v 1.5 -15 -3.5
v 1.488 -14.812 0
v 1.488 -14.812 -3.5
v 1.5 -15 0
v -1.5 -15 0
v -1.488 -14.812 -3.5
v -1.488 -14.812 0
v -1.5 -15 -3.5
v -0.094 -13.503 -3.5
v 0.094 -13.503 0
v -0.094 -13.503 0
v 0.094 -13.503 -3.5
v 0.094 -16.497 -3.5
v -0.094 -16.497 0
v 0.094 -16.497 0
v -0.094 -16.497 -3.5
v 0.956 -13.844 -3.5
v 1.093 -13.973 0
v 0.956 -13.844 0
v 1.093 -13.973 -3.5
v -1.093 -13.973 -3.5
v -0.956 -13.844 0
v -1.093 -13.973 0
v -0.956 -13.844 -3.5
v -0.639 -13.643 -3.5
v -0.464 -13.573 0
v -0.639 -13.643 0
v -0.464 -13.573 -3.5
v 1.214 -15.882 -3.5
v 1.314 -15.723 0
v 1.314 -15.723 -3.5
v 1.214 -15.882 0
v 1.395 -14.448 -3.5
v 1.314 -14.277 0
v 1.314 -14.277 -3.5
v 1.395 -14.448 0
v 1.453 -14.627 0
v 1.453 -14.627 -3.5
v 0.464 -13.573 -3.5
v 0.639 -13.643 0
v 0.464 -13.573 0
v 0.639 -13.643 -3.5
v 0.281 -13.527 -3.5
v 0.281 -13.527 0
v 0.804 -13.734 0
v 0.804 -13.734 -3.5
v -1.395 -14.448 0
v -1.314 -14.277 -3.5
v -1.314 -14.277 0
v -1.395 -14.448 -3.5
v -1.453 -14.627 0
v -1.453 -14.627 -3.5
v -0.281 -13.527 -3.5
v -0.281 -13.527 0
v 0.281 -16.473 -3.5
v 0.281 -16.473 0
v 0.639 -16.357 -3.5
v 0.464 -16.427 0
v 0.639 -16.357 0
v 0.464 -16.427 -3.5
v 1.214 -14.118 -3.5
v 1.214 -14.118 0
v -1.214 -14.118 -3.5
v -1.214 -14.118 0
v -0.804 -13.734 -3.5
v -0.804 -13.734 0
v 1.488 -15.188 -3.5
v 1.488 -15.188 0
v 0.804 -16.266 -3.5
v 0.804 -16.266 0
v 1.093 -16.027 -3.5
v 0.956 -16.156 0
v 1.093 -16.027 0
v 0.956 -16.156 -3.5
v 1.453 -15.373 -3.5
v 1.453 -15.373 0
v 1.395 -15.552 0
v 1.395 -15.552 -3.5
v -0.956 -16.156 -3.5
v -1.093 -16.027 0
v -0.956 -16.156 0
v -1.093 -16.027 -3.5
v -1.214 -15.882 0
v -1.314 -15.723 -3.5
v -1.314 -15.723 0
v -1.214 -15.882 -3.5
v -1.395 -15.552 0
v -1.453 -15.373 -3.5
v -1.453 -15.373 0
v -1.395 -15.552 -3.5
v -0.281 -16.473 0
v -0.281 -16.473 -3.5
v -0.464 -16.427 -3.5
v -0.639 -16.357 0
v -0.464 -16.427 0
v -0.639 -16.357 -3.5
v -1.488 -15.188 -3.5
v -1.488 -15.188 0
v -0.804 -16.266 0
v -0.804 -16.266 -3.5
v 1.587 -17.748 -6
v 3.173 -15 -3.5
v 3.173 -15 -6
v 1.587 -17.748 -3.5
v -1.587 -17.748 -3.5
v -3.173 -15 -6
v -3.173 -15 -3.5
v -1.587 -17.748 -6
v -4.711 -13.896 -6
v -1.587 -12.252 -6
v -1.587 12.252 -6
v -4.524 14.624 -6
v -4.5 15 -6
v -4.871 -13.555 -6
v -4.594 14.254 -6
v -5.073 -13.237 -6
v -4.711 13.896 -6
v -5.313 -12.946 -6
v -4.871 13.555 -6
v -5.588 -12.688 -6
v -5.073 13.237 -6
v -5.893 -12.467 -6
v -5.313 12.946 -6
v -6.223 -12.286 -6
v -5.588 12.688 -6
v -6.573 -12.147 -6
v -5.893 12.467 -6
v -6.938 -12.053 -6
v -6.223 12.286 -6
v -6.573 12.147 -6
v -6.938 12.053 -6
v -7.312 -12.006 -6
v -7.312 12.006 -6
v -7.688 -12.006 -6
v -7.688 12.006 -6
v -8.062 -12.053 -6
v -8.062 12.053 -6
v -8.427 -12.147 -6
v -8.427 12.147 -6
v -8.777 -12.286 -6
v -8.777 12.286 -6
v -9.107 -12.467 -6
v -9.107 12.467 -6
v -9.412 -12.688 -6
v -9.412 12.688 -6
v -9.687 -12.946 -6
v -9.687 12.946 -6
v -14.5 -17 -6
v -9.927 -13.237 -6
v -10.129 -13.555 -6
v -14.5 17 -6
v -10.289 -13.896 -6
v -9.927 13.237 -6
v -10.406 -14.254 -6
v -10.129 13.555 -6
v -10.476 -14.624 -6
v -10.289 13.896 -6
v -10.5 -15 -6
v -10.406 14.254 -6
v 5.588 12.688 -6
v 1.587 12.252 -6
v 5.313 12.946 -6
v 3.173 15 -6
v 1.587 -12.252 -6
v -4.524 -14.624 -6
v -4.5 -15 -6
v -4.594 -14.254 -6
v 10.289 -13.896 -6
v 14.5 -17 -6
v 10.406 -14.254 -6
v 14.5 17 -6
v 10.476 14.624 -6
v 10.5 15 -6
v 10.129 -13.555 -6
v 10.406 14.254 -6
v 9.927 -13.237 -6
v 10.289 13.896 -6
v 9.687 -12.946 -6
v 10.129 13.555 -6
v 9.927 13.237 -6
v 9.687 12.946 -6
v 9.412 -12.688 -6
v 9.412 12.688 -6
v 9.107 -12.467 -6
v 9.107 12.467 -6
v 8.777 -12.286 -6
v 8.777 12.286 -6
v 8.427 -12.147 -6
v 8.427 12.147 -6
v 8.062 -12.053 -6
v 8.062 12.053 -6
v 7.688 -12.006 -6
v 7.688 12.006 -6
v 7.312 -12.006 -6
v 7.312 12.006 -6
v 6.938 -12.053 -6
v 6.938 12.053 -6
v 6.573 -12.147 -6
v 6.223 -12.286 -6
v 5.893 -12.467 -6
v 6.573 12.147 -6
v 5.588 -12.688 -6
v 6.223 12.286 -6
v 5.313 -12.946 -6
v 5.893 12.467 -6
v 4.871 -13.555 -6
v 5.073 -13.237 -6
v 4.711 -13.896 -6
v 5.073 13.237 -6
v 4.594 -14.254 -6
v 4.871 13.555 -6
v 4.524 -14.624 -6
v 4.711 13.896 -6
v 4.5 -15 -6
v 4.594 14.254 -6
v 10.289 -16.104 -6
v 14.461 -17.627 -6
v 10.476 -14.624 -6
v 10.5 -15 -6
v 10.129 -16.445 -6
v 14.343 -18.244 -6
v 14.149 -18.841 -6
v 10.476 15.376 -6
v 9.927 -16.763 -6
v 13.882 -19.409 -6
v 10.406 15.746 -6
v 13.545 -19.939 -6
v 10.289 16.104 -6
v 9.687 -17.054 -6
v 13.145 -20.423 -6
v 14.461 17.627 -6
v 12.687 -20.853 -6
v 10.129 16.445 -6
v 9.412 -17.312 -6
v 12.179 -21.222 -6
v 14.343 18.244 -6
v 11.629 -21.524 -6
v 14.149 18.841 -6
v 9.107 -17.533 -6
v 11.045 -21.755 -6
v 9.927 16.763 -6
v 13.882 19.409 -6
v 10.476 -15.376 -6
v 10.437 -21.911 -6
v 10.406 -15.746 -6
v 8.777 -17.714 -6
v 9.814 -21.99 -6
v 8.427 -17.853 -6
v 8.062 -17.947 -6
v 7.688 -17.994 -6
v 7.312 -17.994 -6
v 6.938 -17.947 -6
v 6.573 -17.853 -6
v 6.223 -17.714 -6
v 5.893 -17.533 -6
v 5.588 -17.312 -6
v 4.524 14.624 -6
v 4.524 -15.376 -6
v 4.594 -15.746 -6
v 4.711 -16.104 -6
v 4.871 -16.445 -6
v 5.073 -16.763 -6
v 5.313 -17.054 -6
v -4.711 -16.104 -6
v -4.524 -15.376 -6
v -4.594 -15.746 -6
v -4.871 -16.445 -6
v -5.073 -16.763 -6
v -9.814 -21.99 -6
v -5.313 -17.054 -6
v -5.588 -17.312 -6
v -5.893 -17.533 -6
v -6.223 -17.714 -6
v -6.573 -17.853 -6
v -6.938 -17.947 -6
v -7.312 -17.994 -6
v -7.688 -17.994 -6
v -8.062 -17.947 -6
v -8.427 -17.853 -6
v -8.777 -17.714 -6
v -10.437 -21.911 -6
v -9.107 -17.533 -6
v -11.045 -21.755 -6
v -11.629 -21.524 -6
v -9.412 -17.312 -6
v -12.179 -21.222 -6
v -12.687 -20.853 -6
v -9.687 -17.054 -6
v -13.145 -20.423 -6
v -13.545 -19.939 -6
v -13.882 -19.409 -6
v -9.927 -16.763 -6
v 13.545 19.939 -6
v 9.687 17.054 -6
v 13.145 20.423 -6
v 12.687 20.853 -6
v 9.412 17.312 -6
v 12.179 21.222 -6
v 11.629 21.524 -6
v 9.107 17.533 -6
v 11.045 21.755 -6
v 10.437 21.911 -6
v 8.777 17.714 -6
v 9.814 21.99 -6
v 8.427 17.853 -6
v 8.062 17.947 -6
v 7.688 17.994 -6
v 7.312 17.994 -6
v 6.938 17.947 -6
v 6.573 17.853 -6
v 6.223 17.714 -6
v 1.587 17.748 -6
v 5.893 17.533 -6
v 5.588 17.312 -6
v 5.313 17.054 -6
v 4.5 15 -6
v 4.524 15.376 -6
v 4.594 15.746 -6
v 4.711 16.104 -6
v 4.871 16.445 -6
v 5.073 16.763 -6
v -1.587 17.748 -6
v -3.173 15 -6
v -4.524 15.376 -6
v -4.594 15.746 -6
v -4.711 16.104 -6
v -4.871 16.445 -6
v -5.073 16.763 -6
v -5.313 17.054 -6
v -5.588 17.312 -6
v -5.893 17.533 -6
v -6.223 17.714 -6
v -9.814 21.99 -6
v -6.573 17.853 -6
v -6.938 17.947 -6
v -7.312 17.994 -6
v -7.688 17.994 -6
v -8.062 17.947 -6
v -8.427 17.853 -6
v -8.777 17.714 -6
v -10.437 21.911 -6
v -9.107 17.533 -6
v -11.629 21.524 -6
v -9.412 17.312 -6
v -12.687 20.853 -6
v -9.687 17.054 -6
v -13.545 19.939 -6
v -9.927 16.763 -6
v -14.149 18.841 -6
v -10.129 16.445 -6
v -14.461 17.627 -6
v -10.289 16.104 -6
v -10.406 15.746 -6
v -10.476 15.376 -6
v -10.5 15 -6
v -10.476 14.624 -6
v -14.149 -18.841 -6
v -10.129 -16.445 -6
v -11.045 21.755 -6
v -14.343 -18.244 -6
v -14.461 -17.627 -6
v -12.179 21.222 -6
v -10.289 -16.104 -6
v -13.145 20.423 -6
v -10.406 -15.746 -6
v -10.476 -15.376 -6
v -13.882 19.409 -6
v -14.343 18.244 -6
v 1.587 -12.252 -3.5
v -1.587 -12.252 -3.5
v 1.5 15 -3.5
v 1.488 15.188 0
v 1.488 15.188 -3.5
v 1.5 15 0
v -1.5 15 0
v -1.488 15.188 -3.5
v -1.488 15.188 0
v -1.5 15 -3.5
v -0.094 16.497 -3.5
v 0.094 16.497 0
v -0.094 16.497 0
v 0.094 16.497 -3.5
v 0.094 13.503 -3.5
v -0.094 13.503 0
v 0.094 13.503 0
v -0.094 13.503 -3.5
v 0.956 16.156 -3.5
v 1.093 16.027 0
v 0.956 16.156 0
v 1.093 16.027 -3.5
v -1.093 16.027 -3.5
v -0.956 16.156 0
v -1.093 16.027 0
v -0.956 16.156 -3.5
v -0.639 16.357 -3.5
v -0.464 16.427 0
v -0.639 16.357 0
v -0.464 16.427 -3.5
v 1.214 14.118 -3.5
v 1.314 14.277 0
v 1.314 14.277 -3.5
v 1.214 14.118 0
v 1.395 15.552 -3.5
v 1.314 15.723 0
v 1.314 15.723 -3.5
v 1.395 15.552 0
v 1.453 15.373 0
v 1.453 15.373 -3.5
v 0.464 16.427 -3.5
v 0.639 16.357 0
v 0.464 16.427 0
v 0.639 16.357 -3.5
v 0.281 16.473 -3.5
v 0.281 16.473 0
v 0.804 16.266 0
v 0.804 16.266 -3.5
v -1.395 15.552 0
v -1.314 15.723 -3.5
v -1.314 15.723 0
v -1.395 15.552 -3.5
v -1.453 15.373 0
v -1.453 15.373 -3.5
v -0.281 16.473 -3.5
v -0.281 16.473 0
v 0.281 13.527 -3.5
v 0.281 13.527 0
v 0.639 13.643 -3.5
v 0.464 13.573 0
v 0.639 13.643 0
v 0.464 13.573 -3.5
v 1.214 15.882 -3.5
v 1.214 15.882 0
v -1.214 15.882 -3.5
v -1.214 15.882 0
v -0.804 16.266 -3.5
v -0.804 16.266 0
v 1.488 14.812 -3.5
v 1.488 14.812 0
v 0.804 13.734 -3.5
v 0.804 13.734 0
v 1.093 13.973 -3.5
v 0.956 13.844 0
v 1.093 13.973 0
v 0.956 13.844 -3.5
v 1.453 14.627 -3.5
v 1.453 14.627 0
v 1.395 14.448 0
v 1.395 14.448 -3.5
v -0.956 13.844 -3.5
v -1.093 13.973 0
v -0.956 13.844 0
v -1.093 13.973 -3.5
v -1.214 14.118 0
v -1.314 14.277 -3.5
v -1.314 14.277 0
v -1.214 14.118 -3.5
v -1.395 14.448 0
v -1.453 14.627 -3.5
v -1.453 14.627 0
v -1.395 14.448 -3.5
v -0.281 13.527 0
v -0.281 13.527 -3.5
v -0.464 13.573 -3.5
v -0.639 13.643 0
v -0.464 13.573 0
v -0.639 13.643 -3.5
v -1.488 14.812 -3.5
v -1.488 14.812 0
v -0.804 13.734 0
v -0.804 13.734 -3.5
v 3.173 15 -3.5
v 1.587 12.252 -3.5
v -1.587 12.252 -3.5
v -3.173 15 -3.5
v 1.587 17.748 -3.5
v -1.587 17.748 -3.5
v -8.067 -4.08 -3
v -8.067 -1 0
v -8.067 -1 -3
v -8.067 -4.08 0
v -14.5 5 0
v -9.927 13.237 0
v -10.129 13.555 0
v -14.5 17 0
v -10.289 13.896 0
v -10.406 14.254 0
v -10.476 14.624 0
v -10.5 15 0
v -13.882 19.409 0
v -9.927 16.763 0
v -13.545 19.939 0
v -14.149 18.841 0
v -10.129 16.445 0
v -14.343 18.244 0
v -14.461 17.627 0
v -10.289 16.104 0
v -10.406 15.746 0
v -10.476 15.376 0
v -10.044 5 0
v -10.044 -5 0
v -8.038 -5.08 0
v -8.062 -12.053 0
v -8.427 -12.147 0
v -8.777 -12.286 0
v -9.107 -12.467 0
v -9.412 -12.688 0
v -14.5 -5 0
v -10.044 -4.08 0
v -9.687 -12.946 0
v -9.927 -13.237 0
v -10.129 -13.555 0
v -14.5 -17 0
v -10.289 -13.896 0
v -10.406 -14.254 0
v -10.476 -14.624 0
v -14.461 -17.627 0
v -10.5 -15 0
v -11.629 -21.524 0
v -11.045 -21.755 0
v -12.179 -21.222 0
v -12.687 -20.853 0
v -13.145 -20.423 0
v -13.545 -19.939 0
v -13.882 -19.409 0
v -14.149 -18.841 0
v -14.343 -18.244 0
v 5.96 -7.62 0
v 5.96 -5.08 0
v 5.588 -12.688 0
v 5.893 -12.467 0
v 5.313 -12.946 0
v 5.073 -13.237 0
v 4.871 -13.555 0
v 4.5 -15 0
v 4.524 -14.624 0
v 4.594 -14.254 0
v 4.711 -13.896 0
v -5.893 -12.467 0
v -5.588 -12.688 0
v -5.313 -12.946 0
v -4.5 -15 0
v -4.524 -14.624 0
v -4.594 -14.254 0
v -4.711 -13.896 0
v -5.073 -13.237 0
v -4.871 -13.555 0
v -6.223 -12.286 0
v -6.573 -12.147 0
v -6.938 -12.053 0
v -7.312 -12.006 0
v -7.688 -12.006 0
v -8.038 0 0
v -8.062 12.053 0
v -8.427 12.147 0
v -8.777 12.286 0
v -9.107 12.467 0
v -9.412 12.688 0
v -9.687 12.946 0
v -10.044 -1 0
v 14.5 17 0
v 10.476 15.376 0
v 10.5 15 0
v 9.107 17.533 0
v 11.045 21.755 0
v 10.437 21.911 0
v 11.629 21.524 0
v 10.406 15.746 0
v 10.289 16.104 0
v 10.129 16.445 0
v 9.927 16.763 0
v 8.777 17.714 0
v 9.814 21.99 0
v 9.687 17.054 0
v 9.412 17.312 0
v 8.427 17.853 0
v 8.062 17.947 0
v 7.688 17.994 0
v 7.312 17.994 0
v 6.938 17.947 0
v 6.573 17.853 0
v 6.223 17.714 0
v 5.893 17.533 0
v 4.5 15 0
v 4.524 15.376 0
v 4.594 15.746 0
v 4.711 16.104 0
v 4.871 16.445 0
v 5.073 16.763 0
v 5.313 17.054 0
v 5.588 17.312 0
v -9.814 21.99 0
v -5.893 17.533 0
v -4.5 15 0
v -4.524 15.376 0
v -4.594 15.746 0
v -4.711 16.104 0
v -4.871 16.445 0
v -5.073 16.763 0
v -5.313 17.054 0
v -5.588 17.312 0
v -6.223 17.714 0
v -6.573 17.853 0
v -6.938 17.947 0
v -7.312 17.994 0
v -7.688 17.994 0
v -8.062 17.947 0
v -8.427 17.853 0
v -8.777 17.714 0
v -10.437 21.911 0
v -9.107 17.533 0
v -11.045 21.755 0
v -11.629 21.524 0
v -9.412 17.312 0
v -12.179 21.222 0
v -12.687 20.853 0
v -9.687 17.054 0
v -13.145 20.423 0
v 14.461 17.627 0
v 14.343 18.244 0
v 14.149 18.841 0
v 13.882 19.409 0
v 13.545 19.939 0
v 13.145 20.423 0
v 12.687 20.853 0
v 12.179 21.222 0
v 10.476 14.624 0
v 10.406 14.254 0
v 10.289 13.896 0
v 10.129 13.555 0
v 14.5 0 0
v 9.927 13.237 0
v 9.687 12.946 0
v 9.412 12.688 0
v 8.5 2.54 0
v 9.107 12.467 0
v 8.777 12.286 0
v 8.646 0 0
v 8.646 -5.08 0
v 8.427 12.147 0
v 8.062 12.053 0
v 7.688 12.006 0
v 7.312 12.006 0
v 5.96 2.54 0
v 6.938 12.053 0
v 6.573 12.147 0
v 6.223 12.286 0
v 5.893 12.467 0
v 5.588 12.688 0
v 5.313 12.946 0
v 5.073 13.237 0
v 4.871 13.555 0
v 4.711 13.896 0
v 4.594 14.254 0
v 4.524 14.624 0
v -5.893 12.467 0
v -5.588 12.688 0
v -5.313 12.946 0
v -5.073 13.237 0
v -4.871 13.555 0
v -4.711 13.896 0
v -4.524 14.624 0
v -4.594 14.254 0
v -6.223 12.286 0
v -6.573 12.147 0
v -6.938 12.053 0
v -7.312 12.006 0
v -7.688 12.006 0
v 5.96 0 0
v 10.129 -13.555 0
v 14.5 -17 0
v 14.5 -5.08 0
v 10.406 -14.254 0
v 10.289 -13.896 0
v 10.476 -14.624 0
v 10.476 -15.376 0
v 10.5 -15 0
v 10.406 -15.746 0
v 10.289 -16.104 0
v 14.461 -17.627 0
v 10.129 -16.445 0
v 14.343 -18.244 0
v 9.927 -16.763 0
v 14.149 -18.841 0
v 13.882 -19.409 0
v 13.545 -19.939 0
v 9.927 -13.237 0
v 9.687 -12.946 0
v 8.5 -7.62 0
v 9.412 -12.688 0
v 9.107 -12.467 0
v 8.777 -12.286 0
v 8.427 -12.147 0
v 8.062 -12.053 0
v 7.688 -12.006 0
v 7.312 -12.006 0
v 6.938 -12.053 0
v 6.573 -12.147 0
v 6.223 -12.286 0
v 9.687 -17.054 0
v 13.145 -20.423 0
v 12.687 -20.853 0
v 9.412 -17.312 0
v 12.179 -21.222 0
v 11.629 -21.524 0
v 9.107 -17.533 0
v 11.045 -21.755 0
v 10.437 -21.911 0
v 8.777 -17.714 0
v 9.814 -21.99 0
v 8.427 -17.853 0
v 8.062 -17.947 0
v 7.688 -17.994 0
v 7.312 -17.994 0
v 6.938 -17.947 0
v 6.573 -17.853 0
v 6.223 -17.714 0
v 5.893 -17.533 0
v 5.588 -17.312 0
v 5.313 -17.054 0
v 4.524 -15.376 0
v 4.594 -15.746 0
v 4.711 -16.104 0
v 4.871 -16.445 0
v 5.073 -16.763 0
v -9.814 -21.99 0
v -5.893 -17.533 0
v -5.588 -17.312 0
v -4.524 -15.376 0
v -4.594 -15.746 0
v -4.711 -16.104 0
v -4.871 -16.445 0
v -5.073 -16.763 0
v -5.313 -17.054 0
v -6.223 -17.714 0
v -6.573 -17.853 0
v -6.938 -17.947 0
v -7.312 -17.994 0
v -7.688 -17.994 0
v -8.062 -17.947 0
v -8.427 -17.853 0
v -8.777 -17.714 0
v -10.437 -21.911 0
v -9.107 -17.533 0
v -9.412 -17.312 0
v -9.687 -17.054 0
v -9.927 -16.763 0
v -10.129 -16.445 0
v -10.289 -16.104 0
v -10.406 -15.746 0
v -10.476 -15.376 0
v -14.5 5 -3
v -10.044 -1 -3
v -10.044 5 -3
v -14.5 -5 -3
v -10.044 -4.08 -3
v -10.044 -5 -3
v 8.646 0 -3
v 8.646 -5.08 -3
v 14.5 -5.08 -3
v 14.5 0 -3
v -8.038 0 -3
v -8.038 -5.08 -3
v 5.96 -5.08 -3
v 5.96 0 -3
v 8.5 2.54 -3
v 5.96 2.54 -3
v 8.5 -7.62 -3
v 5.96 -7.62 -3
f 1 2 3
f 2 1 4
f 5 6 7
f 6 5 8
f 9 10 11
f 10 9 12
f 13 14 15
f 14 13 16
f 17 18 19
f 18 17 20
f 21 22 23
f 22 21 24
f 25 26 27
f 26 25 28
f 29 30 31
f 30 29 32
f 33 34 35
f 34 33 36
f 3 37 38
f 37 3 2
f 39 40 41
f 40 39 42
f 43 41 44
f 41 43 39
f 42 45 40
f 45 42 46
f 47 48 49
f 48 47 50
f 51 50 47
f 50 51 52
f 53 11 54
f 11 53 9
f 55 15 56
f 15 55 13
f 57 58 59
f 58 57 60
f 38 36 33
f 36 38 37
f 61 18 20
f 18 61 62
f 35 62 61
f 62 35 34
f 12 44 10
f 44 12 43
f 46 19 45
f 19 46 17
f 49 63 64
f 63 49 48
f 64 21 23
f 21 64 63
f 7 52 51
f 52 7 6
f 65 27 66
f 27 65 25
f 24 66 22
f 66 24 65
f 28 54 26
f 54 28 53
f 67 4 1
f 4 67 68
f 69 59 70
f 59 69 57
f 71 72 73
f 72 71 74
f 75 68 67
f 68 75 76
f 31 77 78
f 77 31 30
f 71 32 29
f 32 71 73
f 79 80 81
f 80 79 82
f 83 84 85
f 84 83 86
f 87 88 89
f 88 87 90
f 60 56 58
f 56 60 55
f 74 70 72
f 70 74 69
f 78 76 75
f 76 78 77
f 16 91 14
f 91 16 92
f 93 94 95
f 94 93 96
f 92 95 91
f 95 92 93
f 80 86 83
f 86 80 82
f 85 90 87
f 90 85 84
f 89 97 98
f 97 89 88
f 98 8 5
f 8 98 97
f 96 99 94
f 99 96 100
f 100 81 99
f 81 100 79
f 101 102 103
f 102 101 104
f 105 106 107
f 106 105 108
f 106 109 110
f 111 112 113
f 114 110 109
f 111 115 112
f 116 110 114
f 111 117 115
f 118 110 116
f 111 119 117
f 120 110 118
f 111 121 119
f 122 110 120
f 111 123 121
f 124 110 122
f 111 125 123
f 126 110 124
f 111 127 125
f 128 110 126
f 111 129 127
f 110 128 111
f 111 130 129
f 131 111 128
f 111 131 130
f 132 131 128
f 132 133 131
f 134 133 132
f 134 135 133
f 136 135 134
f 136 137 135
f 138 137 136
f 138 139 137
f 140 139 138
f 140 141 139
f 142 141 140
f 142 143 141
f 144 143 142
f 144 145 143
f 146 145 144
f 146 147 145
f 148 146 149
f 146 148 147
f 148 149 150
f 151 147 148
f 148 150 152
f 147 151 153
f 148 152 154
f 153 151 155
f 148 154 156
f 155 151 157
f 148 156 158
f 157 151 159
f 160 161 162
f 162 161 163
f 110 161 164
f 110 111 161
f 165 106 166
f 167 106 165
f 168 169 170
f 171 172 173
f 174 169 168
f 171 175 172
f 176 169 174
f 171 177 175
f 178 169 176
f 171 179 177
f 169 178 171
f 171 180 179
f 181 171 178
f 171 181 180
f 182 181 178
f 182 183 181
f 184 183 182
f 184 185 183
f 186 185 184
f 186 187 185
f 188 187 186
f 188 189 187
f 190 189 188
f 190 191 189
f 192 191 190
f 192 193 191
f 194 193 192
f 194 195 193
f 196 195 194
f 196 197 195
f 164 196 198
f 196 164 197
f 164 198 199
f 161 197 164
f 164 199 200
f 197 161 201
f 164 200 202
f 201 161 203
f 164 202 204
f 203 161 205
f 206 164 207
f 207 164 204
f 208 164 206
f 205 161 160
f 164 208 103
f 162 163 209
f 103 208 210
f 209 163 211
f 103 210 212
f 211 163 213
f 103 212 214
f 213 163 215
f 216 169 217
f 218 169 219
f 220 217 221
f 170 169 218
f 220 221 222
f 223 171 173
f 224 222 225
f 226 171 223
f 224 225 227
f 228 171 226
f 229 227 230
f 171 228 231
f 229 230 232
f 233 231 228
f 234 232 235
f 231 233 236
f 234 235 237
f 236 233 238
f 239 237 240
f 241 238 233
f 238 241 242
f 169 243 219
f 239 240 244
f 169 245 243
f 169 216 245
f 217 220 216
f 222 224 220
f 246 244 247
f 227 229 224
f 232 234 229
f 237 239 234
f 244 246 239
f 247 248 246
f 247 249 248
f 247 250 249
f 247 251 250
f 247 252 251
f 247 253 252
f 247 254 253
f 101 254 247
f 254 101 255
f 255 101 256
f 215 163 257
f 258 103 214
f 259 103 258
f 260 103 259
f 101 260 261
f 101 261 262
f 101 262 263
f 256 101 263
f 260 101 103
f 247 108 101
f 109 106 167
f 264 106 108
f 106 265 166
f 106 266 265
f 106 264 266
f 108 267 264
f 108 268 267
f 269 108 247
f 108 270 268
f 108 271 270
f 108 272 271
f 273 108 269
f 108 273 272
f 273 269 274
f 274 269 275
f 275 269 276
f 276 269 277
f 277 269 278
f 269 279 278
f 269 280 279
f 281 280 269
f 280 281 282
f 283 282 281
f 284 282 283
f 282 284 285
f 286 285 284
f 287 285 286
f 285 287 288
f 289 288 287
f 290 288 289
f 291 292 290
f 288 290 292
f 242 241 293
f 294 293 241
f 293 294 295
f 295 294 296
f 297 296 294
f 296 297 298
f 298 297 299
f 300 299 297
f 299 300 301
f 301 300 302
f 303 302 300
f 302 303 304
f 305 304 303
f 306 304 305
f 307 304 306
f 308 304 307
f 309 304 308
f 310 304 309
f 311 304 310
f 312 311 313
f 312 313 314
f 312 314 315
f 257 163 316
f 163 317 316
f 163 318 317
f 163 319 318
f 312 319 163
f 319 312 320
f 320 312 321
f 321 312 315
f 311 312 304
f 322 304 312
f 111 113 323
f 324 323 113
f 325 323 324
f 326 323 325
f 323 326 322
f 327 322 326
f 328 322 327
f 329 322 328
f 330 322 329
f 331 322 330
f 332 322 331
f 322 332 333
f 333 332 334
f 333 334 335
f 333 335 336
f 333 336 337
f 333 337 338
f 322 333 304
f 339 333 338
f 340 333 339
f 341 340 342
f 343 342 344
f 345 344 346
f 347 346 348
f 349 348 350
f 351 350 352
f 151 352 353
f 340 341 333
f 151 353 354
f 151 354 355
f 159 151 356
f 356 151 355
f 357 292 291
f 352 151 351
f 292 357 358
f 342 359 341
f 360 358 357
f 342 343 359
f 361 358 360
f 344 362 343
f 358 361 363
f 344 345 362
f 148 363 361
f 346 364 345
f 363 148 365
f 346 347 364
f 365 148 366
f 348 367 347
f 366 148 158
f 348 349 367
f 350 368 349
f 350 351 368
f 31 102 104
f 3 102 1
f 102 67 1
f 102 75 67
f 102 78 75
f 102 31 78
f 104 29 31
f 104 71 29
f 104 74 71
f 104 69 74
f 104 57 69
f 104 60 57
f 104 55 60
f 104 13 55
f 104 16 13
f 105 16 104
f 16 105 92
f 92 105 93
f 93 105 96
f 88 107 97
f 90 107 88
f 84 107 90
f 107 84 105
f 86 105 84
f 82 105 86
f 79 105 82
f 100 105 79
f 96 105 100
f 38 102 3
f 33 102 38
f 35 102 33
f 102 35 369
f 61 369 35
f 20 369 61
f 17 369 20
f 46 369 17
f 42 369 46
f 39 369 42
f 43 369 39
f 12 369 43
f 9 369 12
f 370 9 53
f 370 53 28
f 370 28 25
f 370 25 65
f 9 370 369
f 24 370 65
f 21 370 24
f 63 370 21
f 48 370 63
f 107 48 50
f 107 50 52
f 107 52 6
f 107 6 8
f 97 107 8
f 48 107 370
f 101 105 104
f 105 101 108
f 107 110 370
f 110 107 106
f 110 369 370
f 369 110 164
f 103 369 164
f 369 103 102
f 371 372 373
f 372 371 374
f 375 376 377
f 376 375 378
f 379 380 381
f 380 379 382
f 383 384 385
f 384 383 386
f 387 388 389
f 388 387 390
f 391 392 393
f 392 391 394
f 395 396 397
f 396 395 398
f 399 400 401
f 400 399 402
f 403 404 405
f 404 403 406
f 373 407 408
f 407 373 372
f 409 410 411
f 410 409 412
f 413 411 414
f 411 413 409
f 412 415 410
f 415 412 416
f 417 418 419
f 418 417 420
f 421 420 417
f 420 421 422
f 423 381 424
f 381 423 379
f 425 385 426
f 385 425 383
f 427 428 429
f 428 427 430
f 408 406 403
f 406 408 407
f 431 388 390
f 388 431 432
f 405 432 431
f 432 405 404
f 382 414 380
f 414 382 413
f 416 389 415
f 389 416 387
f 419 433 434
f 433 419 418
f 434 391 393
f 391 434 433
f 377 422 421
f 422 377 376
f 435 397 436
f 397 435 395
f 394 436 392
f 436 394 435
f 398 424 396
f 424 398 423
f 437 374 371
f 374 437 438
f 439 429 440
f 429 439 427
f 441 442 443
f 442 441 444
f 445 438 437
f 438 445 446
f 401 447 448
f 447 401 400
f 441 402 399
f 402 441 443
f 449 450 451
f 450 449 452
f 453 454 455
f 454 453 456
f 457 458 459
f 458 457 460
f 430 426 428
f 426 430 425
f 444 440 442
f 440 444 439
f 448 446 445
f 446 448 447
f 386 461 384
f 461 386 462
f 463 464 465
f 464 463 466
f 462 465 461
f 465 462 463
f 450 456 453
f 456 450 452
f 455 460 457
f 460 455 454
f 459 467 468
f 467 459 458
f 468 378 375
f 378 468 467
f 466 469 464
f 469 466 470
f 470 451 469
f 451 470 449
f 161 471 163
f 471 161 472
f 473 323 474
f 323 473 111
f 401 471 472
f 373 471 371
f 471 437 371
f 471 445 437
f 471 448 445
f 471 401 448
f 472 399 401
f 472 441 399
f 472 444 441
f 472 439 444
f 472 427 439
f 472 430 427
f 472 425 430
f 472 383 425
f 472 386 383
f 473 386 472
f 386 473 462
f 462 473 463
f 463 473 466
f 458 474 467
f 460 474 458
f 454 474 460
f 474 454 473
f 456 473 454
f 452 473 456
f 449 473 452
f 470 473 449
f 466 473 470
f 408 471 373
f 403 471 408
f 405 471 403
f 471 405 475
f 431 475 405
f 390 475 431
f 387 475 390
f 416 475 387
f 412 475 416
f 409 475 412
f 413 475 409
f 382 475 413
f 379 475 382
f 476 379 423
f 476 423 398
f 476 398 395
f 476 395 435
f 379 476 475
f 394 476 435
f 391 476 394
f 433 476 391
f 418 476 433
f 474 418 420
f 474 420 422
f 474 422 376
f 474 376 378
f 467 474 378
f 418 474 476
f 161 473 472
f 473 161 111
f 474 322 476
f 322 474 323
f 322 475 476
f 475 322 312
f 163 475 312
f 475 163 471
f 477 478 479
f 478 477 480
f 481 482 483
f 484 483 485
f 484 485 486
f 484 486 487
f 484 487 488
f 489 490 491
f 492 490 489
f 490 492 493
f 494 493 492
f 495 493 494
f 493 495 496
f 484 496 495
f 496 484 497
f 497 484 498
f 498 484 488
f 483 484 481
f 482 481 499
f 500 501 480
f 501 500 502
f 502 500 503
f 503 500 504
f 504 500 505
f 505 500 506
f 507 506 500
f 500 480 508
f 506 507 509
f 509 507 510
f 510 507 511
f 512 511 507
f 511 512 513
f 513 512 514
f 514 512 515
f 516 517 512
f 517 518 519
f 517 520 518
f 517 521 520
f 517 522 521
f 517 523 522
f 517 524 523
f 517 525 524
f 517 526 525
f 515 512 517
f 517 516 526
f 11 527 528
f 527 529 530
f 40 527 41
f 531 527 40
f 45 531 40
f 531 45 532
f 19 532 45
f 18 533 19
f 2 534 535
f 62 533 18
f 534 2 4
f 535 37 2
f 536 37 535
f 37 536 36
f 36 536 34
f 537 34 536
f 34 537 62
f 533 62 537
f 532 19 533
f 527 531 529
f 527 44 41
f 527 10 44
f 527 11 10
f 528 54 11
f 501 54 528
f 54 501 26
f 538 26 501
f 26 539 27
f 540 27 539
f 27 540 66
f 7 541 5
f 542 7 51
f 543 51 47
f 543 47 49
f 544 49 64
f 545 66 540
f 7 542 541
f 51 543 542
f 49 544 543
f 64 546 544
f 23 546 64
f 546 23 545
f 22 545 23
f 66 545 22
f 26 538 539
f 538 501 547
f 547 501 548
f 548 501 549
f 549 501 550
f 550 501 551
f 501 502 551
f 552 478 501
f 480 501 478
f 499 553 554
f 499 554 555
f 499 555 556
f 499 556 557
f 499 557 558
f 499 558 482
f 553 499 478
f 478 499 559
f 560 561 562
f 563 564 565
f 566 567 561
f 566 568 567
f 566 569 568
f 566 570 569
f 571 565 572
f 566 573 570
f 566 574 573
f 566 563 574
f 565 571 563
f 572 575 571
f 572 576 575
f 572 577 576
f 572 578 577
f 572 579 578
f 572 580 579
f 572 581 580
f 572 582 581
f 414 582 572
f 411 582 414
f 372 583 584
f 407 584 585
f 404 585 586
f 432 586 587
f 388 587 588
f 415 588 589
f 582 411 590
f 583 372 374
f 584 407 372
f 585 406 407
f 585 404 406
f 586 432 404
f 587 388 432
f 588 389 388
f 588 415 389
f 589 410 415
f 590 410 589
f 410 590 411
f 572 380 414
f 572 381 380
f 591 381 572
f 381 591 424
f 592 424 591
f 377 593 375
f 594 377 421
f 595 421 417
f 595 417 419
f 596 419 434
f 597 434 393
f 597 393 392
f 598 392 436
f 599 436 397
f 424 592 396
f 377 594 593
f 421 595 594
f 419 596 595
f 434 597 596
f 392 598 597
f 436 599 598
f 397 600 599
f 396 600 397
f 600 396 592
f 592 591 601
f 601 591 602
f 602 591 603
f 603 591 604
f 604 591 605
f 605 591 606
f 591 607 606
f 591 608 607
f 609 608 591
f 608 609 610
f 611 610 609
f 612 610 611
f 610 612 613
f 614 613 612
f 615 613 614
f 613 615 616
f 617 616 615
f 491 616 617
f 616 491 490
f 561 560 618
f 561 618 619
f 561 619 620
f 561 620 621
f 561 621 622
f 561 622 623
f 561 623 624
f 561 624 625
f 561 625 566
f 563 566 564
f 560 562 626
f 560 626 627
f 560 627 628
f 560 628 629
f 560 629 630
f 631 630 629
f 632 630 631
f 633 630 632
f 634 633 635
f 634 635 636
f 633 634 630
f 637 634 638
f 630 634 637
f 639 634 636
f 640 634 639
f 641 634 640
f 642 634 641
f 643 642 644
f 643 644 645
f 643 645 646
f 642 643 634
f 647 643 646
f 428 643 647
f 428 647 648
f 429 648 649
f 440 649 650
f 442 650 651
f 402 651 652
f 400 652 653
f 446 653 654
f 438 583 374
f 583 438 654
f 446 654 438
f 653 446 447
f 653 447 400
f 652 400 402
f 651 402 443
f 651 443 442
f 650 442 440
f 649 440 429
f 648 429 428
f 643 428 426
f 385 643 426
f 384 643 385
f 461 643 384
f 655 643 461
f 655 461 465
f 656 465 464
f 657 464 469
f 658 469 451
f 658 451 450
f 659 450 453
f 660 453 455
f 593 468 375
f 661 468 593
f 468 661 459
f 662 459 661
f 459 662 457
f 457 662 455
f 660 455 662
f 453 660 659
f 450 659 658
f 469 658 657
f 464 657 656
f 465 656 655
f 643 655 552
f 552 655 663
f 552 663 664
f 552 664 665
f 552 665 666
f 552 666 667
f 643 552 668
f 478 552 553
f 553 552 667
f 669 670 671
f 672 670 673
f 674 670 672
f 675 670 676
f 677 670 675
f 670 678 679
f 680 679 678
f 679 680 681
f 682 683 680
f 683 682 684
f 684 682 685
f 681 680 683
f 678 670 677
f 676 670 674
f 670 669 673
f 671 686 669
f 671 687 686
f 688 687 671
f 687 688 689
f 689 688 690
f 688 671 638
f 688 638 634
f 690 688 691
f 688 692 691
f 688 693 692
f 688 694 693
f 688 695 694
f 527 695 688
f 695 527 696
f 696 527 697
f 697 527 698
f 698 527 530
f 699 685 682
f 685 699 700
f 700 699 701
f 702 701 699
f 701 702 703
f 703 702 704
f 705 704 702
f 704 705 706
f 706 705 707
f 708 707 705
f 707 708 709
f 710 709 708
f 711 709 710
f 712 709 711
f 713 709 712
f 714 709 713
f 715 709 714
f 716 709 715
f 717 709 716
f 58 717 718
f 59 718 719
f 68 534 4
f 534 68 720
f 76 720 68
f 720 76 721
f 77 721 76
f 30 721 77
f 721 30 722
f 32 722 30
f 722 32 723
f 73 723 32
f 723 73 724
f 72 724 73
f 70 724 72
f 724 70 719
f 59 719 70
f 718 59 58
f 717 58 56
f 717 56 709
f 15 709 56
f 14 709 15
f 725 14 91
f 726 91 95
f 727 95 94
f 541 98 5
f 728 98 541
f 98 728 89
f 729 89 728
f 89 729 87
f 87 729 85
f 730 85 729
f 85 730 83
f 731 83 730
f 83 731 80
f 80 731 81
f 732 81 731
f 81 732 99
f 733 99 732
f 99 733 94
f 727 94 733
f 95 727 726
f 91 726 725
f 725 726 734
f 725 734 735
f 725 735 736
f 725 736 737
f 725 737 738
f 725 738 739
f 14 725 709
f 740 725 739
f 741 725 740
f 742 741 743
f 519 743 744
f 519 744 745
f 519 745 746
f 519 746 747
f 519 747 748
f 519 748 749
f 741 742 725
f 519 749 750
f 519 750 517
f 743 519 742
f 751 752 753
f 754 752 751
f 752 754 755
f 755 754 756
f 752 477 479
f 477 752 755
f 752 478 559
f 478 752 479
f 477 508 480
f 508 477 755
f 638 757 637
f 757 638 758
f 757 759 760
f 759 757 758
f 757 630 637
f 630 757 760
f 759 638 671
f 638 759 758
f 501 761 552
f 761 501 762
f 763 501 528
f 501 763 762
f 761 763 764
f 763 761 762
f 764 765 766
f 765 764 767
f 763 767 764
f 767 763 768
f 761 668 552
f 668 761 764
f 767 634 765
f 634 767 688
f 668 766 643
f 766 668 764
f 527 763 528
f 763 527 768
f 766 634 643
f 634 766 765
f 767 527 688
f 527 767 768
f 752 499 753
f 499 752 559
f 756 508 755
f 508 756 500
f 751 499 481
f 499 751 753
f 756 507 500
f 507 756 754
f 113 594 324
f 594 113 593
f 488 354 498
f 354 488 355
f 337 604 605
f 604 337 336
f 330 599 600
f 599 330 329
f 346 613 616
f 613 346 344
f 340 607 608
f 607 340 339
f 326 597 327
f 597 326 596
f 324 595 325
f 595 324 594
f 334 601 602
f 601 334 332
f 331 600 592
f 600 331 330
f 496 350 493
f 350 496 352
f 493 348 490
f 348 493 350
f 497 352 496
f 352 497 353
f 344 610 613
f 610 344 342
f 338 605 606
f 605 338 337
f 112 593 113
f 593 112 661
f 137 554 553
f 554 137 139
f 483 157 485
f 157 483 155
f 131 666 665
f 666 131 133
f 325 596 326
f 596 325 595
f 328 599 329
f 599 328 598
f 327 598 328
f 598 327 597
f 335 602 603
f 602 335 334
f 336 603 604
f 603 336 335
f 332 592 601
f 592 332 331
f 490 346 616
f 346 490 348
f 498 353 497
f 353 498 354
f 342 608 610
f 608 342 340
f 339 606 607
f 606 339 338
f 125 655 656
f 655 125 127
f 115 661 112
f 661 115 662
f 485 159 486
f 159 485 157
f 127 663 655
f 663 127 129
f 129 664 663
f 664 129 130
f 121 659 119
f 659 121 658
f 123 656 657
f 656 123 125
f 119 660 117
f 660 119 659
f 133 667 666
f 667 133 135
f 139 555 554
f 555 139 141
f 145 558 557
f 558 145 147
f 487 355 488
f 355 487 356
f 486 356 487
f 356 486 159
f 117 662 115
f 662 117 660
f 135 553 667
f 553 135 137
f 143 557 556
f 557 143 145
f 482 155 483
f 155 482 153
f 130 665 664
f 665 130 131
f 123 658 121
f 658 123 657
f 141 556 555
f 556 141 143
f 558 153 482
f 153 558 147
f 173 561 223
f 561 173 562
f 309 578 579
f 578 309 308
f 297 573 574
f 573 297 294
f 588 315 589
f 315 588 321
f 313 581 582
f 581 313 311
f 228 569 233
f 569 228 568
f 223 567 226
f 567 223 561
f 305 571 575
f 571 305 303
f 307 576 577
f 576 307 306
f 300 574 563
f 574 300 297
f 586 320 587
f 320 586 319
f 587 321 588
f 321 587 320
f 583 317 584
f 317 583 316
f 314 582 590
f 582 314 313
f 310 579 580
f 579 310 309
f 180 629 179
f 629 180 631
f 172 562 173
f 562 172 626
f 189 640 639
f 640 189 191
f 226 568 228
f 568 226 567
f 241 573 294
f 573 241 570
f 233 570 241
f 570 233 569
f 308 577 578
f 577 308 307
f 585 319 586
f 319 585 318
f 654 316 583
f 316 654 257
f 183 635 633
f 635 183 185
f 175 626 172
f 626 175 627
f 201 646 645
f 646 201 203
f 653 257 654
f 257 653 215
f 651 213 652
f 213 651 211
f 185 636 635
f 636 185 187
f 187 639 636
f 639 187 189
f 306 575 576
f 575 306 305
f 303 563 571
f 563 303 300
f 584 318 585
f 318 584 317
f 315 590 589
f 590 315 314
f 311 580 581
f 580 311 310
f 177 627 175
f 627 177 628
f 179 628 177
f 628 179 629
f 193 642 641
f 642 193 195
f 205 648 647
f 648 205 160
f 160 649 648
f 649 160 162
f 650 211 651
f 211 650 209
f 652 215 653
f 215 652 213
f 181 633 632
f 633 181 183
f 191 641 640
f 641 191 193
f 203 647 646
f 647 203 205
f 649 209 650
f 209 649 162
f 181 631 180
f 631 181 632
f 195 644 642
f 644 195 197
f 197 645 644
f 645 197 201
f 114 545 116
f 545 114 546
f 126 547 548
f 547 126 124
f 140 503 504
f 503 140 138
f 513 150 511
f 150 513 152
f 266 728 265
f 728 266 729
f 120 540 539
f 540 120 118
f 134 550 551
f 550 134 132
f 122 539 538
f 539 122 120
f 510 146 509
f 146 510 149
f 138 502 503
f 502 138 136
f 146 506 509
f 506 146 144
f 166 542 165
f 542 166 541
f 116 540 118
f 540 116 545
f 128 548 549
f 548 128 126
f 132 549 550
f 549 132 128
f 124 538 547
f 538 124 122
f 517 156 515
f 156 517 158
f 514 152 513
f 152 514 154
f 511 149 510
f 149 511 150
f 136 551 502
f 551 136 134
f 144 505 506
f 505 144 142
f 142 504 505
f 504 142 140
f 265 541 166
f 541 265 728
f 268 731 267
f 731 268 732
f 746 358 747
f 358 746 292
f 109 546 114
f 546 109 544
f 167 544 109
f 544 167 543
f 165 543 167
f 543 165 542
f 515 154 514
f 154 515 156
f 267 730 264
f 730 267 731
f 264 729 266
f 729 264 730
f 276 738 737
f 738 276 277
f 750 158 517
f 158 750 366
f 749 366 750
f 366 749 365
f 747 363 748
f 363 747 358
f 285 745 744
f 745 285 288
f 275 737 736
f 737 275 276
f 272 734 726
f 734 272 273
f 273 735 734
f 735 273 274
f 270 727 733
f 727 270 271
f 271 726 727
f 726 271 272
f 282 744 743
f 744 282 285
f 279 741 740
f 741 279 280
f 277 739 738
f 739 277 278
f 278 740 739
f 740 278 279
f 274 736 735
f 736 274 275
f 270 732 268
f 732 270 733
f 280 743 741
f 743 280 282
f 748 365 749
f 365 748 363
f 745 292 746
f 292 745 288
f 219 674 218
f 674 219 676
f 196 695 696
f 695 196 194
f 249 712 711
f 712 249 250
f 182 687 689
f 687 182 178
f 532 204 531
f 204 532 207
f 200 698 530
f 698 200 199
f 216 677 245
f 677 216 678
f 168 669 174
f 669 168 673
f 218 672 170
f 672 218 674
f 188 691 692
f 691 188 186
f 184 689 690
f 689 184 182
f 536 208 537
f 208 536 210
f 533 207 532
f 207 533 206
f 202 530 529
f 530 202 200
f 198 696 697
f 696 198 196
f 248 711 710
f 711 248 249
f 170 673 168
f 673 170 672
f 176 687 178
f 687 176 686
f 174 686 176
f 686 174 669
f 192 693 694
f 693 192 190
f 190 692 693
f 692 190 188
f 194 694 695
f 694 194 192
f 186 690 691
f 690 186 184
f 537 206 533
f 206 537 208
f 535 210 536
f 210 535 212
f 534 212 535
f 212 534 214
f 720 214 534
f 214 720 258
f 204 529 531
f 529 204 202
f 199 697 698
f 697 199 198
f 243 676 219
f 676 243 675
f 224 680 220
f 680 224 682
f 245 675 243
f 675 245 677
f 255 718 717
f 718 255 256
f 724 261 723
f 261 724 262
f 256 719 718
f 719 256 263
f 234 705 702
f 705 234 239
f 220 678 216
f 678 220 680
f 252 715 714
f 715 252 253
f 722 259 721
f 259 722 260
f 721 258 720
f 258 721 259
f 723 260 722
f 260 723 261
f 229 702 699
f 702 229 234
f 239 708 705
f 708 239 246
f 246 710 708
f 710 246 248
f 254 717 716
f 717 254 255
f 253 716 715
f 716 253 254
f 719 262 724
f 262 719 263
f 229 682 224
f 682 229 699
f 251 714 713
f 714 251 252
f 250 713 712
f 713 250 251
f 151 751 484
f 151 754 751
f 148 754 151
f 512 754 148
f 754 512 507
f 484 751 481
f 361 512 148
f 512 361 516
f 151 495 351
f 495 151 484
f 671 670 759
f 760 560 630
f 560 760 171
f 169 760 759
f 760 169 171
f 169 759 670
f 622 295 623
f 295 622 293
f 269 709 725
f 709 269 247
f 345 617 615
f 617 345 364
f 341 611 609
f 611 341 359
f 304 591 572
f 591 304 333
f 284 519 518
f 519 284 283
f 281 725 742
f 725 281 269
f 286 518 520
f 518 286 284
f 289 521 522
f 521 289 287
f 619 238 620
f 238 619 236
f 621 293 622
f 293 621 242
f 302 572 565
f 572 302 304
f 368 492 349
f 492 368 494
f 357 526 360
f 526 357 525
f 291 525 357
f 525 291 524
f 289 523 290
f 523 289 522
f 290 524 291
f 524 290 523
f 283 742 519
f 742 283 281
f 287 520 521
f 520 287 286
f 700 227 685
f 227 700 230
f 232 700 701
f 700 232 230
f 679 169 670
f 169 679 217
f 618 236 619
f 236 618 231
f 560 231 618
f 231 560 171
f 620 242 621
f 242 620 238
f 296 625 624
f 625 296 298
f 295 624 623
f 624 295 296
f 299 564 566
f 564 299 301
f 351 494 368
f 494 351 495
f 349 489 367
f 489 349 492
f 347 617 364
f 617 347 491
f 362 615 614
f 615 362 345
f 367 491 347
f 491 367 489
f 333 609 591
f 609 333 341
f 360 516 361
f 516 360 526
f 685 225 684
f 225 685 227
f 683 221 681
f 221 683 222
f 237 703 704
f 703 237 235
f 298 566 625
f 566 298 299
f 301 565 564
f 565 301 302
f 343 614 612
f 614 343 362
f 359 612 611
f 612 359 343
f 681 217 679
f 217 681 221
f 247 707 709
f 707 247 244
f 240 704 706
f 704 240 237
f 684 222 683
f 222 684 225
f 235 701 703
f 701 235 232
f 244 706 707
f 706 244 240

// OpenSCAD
$fn = 50;


difference() {
	union() {
		translate(v = [0, 0, -6]) {
			hull() {
				translate(v = [-9.5000000000, 17.0000000000, 0]) {
					cylinder(h = 6, r = 5);
				}
				translate(v = [9.5000000000, 17.0000000000, 0]) {
					cylinder(h = 6, r = 5);
				}
				translate(v = [-9.5000000000, -17.0000000000, 0]) {
					cylinder(h = 6, r = 5);
				}
				translate(v = [9.5000000000, -17.0000000000, 0]) {
					cylinder(h = 6, r = 5);
				}
			}
		}
	}
	union() {
		translate(v = [0, -15, -6]) {
			rotate(a = [0, 0, 0]) {
				difference() {
					union() {
						translate(v = [0, 0, -50.0000000000]) {
							cylinder(h = 100, r = 1.5000000000);
						}
						translate(v = [0, 0, -50.0000000000]) {
							cylinder(h = 100, r = 1.5000000000);
						}
						linear_extrude(height = 2.5000000000) {
							polygon(points = [[3.1735000000, 0.0000000000], [1.5867500000, 2.7483316189], [-1.5867500000, 2.7483316189], [-3.1735000000, 0.0000000000], [-1.5867500000, -2.7483316189], [1.5867500000, -2.7483316189]]);
						}
						translate(v = [0, 0, -50.0000000000]) {
							cylinder(h = 100, r = 1.5000000000);
						}
					}
					union();
				}
			}
		}
		translate(v = [0, 15, -6]) {
			rotate(a = [0, 0, 0]) {
				difference() {
					union() {
						translate(v = [0, 0, -50.0000000000]) {
							cylinder(h = 100, r = 1.5000000000);
						}
						translate(v = [0, 0, -50.0000000000]) {
							cylinder(h = 100, r = 1.5000000000);
						}
						linear_extrude(height = 2.5000000000) {
							polygon(points = [[3.1735000000, 0.0000000000], [1.5867500000, 2.7483316189], [-1.5867500000, 2.7483316189], [-3.1735000000, 0.0000000000], [-1.5867500000, -2.7483316189], [1.5867500000, -2.7483316189]]);
						}
						translate(v = [0, 0, -50.0000000000]) {
							cylinder(h = 100, r = 1.5000000000);
						}
					}
					union();
				}
			}
		}
		translate(v = [15.0000000000, 0, -3]) {
			rotate(a = [0, 0, 180]) {
				difference() {
					union() {
						#translate(v = [23.0670000000, 1.0000000000, 0]) {
							cube(size = [5, 3.0800000000, 3]);
						}
						#translate(v = [0.3540000000, 0.0000000000, 0]) {
							cube(size = [6, 5.0800000000, 3]);
						}
						#translate(v = [9.0380000000, 0.0000000000, 0]) {
							cube(size = [14, 5.0800000000, 3]);
						}
						#translate(v = [6.5000000000, -2.5400000000, 0]) {
							cube(size = [2.5400000000, 10.1600000000, 3]);
						}
						#translate(v = [25.0440000000, -5.0000000000, 0]) {
							cube(size = [7, 10, 3]);
						}
					}
					union();
				}
			}
		}
		translate(v = [-7.5000000000, 15.0000000000, -50.0000000000]) {
			cylinder(h = 100, r = 3.0000000000);
		}
		translate(v = [7.5000000000, 15.0000000000, -50.0000000000]) {
			cylinder(h = 100, r = 3.0000000000);
		}
		translate(v = [-7.5000000000, -15.0000000000, -50.0000000000]) {
			cylinder(h = 100, r = 3.0000000000);
		}
		translate(v = [7.5000000000, -15.0000000000, -50.0000000000]) {
			cylinder(h = 100, r = 3.0000000000);
		}
	}
}
